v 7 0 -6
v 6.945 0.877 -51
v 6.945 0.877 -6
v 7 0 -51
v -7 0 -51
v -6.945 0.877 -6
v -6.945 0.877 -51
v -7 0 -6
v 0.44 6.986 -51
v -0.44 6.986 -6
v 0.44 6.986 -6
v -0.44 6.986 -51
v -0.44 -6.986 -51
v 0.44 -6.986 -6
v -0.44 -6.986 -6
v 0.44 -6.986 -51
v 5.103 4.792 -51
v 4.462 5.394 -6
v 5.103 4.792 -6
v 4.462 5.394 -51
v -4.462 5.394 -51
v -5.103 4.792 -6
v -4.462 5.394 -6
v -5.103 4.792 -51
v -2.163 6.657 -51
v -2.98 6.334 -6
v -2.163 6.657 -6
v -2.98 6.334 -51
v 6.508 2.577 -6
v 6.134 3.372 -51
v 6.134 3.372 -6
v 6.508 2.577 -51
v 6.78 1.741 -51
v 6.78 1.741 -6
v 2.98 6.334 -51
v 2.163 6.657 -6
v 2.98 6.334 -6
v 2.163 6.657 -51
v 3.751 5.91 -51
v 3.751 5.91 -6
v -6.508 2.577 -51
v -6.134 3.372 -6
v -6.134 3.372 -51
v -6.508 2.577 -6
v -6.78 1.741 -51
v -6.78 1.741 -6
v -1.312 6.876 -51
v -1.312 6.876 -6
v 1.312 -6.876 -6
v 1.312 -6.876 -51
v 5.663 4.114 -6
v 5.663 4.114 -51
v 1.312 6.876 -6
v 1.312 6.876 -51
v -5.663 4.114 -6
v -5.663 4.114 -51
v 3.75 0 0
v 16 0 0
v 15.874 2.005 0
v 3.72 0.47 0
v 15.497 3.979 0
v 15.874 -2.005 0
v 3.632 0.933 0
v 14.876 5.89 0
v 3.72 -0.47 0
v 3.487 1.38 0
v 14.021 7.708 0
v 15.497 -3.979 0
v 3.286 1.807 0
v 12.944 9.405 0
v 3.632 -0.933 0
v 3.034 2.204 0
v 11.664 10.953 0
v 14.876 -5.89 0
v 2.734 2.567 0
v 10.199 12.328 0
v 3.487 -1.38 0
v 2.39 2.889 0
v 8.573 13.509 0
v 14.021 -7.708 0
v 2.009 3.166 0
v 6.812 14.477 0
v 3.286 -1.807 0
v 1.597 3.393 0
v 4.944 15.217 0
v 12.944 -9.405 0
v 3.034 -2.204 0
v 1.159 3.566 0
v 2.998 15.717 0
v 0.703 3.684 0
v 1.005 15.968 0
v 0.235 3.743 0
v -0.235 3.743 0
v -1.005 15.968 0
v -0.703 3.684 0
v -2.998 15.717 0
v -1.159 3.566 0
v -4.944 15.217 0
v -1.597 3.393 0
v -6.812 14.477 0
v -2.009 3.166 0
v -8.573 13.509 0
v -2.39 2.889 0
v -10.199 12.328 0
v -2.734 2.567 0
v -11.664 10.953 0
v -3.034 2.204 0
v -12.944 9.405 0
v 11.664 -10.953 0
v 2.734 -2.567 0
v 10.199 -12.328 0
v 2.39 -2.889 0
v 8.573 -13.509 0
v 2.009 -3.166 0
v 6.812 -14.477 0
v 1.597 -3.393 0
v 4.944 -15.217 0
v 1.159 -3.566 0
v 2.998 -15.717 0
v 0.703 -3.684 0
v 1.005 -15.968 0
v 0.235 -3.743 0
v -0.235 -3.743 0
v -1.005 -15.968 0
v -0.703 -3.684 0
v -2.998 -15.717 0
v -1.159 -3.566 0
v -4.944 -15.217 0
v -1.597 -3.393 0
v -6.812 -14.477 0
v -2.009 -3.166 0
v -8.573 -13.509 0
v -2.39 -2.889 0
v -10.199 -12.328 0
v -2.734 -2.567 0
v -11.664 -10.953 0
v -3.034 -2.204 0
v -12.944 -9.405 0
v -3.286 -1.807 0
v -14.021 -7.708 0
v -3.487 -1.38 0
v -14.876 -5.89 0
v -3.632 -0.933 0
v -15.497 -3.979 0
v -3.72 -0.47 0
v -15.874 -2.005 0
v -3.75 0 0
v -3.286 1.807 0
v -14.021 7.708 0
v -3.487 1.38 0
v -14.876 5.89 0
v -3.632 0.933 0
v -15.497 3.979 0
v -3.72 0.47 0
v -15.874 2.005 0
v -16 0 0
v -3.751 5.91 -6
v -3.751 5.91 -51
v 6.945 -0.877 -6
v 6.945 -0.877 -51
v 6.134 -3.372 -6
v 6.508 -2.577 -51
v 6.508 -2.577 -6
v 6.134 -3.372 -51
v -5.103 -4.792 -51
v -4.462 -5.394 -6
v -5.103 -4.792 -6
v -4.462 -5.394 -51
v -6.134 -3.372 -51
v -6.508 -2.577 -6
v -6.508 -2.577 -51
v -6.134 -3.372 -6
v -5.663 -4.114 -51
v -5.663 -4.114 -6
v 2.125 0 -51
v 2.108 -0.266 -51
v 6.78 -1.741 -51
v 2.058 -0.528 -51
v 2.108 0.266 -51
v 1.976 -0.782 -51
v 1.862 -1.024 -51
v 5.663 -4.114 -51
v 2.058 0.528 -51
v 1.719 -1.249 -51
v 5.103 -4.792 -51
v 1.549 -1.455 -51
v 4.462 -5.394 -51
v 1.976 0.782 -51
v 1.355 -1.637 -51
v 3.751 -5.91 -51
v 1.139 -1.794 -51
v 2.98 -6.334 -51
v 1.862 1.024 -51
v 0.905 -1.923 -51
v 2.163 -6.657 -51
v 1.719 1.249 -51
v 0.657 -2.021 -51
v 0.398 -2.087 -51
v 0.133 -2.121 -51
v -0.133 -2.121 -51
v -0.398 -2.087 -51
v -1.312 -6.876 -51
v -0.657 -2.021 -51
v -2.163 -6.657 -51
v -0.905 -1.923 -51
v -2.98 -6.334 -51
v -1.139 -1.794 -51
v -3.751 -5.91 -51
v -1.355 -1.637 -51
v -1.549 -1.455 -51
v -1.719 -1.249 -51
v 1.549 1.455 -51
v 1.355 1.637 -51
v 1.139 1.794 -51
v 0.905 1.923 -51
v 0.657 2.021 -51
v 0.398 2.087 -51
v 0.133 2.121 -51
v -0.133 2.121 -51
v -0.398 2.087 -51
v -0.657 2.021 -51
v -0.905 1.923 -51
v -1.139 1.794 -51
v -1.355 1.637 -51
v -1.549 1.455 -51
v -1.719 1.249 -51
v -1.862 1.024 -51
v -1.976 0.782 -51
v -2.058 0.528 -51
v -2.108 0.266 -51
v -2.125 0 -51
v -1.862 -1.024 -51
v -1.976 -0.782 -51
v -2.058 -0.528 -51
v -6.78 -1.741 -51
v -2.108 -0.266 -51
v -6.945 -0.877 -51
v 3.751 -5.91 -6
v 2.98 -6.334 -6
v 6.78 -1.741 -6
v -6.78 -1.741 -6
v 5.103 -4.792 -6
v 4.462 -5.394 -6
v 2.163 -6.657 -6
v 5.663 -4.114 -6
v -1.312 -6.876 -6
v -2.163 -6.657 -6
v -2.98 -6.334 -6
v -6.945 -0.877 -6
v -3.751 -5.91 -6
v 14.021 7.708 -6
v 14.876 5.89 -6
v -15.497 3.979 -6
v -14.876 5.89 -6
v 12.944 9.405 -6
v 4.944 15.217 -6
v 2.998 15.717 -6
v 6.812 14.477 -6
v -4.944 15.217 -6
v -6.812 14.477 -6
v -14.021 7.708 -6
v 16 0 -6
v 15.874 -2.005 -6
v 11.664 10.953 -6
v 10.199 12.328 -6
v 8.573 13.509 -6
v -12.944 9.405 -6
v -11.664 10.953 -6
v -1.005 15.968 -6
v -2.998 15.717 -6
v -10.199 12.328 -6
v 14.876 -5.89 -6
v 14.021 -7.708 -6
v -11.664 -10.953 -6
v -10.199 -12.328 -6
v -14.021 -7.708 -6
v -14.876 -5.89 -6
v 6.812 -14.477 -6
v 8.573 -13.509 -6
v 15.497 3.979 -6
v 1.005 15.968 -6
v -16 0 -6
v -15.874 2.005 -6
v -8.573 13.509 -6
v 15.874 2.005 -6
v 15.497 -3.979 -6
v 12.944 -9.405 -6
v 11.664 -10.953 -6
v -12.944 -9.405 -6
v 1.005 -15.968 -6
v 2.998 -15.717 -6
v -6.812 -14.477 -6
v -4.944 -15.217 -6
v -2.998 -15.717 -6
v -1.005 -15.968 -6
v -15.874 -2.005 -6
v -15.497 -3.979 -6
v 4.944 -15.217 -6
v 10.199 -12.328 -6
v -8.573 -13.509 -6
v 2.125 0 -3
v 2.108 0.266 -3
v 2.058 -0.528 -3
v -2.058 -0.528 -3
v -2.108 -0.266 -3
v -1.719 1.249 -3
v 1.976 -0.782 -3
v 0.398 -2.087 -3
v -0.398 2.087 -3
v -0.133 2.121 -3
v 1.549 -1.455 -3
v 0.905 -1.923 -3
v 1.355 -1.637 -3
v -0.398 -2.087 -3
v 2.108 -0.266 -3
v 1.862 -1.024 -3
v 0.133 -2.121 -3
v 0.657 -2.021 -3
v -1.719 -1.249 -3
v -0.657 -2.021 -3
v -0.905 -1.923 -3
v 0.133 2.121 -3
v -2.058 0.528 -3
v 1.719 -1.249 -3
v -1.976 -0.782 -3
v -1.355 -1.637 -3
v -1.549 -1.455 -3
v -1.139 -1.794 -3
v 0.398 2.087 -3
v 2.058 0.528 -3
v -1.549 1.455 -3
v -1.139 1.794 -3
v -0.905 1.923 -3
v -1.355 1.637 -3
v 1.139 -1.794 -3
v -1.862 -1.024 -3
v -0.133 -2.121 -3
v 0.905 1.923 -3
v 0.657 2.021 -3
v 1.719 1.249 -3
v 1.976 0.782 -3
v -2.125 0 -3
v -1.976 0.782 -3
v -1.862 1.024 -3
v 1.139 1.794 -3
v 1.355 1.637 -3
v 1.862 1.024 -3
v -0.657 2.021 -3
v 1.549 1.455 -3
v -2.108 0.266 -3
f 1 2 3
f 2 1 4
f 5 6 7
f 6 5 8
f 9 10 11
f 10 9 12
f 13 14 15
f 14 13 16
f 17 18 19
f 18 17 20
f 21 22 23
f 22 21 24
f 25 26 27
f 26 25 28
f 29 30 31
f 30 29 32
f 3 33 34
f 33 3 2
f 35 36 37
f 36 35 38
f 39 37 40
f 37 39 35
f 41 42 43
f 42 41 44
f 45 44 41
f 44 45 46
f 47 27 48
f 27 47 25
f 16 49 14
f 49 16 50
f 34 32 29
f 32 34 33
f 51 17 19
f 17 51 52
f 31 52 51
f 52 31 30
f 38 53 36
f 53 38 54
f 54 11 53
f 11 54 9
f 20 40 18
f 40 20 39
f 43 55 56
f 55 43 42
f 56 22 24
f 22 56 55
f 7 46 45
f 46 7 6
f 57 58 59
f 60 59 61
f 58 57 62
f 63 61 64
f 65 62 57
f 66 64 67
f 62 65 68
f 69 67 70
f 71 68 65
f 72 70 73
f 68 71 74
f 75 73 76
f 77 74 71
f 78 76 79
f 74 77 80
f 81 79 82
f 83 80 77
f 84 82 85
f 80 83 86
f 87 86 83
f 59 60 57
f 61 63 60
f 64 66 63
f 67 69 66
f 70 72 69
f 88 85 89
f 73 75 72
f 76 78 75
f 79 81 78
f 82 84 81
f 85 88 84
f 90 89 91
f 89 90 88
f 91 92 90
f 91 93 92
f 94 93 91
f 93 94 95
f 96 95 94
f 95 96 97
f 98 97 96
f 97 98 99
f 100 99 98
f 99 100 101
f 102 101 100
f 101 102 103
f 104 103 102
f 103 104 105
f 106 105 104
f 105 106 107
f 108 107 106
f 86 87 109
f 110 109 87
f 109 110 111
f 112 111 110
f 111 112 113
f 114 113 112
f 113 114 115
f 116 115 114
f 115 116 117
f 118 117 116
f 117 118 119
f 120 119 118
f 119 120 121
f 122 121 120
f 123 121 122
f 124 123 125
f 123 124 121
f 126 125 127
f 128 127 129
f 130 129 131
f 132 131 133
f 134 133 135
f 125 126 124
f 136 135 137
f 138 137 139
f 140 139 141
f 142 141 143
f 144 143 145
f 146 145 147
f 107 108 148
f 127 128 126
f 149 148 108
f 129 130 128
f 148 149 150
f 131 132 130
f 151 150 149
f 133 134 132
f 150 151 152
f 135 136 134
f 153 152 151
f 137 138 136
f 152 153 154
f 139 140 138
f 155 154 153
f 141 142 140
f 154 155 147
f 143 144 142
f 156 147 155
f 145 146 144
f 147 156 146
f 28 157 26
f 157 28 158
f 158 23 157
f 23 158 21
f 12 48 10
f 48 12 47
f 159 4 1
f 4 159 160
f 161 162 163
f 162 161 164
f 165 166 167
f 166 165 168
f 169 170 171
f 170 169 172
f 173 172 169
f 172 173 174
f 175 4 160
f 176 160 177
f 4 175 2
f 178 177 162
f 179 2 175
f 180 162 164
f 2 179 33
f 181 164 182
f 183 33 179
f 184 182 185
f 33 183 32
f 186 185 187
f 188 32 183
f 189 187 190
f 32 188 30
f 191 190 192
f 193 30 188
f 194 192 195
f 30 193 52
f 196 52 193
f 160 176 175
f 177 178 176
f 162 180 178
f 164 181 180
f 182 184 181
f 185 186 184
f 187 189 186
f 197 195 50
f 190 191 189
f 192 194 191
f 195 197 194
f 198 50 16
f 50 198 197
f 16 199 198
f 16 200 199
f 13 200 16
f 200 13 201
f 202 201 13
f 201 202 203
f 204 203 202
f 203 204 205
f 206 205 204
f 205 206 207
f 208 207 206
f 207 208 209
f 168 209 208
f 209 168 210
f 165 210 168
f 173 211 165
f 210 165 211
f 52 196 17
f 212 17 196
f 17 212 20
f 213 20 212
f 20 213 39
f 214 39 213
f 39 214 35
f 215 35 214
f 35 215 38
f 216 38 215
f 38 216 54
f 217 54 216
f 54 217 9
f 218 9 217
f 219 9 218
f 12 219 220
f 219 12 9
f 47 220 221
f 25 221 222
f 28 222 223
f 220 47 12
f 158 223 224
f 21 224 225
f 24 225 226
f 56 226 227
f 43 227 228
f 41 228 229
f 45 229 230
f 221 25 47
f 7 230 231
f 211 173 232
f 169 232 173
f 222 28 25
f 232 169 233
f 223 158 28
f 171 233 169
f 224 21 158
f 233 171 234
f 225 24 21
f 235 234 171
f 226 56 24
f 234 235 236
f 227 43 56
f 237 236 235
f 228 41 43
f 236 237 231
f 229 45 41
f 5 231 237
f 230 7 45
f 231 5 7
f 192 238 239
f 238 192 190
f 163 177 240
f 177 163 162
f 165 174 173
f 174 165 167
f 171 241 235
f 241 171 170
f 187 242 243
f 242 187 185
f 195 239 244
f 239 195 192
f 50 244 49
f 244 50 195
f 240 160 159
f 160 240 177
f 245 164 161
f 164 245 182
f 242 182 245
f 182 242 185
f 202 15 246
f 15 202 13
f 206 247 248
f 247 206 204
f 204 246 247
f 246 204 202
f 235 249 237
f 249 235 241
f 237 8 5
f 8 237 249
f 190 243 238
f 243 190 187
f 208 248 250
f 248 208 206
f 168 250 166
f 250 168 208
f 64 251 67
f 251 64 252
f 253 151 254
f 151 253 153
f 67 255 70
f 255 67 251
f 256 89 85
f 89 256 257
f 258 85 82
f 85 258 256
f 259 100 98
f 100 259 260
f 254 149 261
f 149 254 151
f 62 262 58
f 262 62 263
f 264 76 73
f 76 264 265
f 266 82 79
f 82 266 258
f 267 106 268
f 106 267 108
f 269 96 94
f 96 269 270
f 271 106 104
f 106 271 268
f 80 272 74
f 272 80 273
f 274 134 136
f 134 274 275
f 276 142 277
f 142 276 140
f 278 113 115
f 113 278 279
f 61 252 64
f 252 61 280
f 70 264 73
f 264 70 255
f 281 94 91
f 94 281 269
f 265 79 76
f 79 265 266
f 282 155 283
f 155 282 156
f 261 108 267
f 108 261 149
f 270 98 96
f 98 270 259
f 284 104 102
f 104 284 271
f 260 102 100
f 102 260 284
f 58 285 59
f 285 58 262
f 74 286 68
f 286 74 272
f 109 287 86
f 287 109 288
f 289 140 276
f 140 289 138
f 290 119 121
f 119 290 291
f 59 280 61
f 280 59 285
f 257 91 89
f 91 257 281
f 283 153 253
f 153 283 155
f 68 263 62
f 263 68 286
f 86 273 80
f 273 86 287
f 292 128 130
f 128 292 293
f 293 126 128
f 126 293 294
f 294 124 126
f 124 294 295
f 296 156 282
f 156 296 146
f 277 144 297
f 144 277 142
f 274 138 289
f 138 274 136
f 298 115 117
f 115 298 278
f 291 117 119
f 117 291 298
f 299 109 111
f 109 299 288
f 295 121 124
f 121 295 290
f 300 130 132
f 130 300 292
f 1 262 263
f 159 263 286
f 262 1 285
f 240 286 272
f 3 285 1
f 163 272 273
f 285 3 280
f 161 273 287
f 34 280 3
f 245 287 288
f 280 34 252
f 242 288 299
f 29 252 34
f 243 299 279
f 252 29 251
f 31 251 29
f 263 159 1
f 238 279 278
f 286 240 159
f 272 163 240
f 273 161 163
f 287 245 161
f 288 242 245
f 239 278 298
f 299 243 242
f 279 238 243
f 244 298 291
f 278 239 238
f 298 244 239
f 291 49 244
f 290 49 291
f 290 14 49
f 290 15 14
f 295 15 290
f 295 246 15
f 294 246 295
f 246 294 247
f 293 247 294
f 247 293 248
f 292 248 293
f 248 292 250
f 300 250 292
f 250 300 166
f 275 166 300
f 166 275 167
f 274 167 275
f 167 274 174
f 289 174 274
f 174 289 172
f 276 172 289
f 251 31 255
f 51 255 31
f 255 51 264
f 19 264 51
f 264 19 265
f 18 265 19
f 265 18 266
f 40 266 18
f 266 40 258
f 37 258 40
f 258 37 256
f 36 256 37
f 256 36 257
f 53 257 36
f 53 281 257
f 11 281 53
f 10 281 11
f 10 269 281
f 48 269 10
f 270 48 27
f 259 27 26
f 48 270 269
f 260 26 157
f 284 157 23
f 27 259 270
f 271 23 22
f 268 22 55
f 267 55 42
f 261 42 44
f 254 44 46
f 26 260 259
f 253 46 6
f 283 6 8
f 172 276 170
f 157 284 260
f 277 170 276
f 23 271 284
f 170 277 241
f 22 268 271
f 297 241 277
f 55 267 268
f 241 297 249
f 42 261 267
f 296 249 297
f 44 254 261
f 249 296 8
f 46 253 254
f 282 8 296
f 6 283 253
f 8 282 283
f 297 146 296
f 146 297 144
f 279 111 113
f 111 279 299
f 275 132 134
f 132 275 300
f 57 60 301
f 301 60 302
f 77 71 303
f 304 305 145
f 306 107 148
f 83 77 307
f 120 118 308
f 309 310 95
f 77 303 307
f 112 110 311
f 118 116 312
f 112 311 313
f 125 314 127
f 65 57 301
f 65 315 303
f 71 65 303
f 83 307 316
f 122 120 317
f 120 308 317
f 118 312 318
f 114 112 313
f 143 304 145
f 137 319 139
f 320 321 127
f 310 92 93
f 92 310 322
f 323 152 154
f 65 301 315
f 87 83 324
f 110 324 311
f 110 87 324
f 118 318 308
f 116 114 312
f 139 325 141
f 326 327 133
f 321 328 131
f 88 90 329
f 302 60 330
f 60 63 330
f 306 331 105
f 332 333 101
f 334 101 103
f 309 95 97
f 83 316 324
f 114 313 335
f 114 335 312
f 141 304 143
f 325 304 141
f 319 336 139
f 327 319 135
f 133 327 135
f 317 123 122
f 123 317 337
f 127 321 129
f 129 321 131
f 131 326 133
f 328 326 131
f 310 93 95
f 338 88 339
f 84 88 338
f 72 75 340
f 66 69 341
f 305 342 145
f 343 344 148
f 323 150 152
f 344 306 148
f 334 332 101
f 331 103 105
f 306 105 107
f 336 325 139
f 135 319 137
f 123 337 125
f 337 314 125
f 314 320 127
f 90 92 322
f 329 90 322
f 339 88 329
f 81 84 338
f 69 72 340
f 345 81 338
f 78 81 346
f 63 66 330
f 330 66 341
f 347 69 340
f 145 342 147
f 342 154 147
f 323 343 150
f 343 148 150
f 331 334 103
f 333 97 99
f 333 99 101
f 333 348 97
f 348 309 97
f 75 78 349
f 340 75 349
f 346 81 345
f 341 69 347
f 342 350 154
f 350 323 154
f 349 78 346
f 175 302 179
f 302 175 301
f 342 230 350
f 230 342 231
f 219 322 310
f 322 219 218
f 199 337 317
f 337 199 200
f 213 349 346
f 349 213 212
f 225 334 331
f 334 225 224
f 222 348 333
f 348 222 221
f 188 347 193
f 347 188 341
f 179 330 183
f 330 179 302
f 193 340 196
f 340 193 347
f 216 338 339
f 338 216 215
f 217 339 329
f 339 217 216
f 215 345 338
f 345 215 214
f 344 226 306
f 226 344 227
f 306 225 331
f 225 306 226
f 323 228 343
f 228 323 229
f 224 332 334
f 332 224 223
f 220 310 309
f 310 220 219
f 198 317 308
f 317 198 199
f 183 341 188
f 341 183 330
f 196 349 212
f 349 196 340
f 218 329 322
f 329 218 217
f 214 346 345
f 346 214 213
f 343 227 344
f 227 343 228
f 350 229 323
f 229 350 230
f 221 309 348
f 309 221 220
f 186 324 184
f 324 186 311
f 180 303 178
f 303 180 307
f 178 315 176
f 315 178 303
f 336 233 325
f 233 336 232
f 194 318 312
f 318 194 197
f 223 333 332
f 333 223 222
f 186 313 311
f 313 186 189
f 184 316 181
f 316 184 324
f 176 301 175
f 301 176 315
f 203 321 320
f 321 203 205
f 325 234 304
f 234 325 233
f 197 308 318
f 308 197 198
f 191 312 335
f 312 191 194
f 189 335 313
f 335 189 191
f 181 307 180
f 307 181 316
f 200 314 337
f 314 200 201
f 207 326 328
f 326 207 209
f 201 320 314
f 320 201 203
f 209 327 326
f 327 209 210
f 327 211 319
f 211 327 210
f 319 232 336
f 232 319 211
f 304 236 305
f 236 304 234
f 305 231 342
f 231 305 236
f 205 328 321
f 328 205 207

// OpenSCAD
$fn = 50;


difference() {
	union() {
		translate(v = [0, 0, -51.0000000000]) {
			cylinder(h = 51, r = 7.0000000000);
		}
		translate(v = [0, 0, -6.0000000000]) {
			cylinder(h = 6, r = 16.0000000000);
		}
	}
	union() {
		translate(v = [0, 0, 0]) {
			rotate(a = [0, 0, 0]) {
				difference() {
					union() {
						#translate(v = [0, 0, -51.0000000000]) {
							cylinder(h = 51, r = 2.0000000000);
						}
						#translate(v = [0, 0, -3]) {
							cylinder(h = 3, r1 = 2.1250000000, r2 = 3.7500000000);
						}
						#translate(v = [0, 0, -51.0000000000]) {
							cylinder(h = 51, r = 2.1250000000);
						}
						#translate(v = [0, 0, -51.0000000000]) {
							cylinder(h = 51, r = 2.0000000000);
						}
					}
					union();
				}
			}
		}
	}
}
